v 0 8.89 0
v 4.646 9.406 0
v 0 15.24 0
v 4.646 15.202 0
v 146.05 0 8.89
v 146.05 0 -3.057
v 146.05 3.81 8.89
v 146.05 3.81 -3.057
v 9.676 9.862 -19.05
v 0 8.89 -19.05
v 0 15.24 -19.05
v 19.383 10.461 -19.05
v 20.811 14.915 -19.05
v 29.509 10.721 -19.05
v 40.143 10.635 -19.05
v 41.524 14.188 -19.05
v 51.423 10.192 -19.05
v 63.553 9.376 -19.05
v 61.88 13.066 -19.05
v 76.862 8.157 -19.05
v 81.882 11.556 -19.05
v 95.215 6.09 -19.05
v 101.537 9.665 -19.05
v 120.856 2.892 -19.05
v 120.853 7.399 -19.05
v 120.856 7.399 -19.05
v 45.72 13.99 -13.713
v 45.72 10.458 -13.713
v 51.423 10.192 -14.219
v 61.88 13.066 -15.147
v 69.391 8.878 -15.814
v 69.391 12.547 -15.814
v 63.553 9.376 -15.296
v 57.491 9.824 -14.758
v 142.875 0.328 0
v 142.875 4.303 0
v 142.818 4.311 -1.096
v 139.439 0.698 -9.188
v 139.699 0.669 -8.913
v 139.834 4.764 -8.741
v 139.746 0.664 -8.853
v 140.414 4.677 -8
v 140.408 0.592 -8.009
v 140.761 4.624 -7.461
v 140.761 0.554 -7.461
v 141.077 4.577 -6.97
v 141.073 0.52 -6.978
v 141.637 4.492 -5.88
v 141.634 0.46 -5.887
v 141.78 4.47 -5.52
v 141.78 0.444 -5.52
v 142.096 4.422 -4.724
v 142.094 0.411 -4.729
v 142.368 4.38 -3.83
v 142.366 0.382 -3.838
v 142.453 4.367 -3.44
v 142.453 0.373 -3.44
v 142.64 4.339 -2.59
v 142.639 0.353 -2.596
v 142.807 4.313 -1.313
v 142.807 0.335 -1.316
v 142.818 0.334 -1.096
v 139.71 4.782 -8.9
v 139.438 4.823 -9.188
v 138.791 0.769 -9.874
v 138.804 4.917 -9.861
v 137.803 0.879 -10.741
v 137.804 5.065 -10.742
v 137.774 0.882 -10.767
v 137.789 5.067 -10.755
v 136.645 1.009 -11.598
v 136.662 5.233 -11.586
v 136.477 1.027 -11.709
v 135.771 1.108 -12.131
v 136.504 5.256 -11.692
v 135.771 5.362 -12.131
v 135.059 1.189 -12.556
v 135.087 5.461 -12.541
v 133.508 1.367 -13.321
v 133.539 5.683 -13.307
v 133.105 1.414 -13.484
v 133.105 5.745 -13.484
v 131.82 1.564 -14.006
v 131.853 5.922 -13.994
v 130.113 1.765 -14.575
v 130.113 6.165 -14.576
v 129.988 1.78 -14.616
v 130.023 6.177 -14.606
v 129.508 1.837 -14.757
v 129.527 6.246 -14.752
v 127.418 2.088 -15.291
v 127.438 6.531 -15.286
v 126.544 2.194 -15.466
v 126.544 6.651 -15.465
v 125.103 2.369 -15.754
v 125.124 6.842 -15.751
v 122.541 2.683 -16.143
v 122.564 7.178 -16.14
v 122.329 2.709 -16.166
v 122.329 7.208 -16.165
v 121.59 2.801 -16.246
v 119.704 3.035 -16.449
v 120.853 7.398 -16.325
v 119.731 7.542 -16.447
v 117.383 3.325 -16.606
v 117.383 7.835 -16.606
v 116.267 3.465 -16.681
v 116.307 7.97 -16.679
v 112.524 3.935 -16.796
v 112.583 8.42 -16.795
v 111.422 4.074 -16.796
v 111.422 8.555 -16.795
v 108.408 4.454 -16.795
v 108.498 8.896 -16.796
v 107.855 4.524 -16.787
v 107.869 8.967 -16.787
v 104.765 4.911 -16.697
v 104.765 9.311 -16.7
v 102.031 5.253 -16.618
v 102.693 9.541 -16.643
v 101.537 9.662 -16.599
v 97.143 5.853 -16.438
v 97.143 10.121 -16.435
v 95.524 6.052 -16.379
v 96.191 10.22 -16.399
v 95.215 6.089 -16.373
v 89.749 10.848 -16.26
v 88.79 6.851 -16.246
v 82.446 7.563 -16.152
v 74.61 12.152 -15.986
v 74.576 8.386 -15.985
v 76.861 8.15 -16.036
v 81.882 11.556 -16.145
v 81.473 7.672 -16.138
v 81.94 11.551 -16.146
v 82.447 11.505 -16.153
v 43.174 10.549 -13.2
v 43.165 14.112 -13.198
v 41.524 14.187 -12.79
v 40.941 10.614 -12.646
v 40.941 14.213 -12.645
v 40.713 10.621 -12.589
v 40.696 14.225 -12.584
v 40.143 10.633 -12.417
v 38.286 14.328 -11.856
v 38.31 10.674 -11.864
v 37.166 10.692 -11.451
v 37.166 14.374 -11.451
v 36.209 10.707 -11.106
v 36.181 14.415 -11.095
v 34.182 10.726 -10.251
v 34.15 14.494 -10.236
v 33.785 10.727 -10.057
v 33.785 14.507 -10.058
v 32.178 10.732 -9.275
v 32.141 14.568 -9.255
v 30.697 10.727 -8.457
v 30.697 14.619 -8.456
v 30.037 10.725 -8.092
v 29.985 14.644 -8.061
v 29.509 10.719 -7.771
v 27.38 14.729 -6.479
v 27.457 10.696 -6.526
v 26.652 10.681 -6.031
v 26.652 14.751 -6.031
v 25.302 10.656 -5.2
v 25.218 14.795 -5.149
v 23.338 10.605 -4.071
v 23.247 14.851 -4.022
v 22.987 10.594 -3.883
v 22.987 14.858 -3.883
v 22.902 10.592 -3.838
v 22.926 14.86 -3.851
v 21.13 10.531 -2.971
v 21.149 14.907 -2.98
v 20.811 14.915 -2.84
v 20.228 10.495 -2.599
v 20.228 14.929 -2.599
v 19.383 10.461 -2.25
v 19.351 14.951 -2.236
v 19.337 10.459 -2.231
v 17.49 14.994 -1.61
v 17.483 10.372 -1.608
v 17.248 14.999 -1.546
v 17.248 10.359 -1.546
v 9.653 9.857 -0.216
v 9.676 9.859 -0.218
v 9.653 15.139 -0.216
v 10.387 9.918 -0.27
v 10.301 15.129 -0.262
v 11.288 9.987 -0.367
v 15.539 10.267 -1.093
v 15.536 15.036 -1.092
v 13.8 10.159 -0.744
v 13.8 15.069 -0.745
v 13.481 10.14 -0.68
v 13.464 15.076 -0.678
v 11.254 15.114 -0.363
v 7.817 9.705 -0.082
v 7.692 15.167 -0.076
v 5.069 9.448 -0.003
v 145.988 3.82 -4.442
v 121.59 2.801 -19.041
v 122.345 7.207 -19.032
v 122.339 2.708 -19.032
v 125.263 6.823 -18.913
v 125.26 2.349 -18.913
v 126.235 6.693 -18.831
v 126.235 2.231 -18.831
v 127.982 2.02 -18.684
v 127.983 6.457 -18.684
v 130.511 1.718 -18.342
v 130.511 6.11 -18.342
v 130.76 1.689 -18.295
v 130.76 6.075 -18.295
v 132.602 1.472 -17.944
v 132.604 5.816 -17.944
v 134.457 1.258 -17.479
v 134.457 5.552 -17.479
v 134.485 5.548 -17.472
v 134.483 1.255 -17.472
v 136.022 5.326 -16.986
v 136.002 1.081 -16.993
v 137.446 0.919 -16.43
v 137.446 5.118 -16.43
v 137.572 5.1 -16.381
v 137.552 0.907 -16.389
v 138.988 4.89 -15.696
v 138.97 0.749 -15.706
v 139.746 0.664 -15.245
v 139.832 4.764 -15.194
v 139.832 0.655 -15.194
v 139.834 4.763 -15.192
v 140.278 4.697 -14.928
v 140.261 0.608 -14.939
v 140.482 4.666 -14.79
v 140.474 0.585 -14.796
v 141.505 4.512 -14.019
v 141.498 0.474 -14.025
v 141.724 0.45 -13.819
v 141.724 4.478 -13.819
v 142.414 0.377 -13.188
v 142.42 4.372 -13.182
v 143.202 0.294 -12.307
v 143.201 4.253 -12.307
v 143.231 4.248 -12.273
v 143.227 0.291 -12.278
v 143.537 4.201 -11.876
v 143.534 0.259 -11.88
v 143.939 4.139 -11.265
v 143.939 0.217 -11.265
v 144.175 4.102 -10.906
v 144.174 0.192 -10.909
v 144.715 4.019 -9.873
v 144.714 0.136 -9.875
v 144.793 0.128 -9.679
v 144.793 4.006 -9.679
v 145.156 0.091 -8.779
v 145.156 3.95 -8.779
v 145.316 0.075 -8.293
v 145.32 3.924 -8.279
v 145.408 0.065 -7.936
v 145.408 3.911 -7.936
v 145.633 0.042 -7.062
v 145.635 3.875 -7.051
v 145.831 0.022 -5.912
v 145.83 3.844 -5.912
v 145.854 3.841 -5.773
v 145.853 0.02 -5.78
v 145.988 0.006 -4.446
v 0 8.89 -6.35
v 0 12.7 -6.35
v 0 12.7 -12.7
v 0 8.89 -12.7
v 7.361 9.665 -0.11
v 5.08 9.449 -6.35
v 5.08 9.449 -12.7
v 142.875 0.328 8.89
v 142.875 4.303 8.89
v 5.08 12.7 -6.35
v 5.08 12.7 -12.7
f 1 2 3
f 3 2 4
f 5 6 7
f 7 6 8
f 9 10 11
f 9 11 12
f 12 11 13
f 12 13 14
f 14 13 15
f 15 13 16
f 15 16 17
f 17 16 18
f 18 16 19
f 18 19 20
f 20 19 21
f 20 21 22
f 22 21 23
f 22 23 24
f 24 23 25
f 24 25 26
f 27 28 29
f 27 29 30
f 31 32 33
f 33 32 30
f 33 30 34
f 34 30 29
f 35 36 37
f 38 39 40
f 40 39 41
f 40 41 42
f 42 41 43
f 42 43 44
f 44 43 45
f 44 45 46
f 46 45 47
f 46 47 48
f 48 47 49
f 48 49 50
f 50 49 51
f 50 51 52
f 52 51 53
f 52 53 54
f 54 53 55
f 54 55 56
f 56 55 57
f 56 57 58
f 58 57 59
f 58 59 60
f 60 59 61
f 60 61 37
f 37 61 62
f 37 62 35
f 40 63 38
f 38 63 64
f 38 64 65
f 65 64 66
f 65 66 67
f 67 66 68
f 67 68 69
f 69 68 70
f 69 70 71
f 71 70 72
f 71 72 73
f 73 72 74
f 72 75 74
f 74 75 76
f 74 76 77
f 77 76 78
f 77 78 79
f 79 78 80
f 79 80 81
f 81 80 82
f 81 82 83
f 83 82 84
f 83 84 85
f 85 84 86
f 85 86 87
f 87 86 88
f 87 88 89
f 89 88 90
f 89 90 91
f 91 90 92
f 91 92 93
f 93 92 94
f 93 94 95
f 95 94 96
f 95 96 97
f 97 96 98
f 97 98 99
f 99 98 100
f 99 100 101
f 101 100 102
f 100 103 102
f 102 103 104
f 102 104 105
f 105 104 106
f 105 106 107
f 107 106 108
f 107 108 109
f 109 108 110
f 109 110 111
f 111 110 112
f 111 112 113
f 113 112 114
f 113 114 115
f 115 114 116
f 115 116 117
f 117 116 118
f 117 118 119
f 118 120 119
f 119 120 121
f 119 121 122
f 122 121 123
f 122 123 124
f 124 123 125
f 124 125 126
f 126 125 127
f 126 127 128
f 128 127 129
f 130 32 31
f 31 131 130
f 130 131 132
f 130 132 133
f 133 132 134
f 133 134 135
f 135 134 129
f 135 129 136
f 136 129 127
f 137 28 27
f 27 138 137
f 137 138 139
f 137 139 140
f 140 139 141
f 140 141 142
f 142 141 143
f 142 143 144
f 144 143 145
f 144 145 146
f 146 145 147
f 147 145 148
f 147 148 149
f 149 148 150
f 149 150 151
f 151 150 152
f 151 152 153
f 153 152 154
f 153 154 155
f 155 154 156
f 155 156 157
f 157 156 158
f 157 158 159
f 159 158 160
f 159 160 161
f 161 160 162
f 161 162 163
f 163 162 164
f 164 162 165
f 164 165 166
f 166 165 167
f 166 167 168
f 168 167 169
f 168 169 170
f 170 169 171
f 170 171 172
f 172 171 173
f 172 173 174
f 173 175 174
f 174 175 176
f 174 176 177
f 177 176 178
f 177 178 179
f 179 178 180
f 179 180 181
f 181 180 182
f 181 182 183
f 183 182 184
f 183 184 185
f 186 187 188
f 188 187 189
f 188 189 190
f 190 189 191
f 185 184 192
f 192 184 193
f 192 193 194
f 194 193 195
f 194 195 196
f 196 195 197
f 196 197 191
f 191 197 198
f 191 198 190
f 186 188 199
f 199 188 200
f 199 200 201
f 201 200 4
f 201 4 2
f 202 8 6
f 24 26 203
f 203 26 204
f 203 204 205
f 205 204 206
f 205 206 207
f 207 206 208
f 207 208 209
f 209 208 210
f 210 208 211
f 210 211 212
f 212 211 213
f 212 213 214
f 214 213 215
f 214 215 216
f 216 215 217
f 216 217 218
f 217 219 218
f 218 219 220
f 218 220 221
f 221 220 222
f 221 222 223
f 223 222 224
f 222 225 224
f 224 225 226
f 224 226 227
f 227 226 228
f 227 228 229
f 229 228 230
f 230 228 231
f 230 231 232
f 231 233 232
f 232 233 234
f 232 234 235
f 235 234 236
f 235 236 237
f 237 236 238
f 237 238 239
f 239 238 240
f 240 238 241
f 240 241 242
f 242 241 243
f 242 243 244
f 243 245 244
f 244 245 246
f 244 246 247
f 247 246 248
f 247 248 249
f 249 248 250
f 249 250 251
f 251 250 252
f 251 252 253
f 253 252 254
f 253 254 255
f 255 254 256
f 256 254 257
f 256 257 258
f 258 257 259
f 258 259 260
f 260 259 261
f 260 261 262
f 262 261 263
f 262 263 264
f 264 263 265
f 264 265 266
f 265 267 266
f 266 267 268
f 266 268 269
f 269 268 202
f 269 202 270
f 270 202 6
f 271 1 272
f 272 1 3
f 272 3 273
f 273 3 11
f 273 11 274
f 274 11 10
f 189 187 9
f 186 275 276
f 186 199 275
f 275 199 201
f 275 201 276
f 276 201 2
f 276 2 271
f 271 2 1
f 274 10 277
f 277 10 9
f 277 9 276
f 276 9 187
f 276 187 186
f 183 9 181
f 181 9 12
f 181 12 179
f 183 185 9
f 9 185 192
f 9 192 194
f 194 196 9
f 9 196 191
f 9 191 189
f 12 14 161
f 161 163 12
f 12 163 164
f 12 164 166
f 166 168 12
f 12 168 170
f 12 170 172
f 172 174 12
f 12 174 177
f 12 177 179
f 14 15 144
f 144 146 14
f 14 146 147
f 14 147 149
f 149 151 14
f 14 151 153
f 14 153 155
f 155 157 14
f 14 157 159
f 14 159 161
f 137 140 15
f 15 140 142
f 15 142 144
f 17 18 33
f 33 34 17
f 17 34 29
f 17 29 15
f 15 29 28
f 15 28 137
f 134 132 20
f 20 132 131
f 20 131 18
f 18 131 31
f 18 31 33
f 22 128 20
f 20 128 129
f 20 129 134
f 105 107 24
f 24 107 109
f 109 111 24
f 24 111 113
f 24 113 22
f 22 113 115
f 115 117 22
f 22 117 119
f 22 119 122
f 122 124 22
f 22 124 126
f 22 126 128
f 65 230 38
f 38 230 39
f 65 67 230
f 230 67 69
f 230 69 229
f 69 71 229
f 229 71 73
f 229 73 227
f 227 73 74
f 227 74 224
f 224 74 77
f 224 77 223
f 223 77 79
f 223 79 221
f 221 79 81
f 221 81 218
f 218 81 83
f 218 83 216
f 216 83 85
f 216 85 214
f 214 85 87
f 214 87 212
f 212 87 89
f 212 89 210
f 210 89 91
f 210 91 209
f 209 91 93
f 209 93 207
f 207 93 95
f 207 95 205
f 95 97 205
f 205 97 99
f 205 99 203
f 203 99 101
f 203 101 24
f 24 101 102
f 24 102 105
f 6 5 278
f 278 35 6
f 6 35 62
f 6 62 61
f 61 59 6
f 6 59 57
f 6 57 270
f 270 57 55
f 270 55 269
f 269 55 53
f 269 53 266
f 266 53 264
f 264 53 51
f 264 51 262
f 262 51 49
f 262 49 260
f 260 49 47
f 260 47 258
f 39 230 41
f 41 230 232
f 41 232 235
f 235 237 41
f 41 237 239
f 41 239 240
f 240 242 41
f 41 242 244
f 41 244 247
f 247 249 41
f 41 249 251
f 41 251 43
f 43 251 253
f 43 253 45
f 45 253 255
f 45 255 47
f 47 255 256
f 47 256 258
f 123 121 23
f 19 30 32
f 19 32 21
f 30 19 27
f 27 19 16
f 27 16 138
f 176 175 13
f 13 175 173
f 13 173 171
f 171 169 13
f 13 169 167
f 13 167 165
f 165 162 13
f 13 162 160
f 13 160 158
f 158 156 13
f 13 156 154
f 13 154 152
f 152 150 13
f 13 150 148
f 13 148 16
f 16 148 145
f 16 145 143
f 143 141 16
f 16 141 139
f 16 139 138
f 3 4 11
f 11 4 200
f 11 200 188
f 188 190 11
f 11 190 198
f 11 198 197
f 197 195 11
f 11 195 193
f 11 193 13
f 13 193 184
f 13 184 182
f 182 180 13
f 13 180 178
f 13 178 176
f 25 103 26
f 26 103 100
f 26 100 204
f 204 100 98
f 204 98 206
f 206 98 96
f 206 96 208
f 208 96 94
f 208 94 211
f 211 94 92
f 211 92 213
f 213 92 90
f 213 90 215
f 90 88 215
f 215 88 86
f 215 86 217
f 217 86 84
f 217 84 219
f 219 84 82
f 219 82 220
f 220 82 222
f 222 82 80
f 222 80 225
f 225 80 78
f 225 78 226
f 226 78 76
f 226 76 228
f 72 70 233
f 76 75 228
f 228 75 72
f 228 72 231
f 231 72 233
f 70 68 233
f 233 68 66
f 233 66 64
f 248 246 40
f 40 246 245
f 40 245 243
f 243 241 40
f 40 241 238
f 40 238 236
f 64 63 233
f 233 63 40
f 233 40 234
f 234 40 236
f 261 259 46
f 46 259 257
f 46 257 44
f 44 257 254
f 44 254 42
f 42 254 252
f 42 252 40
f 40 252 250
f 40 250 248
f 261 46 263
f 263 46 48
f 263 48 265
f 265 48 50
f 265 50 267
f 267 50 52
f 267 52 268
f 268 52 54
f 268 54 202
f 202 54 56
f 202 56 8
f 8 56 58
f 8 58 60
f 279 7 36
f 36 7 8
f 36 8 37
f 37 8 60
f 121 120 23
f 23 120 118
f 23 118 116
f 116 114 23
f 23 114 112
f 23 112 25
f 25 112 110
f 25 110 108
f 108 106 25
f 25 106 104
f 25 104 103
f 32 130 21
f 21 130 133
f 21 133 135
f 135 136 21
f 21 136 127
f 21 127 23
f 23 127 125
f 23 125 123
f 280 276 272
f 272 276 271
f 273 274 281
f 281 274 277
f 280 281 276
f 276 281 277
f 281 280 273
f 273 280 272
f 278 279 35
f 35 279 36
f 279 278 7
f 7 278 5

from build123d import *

# Parameters (mm, degrees)
SKETCH1_W           = 146.05
SKETCH1_H           = 19.05
BOSS_EXTRUDE1_DEPTH = 15.24
CUT_EXTRUDE2_DEPTH  = 19.05
CUT_EXTRUDE3_DEPTH  = 149.073504166
SKETCH5_W           = 6.35
SKETCH5_H           = 3.81
CUT_EXTRUDE4_DEPTH  = 5.08
BOSS_EXTRUDE2_DEPTH = 8.89


with BuildPart() as part:
    # Sketch1 → Boss-Extrude1 (new body)
    with BuildSketch(Plane(origin=(0, 0, 0), x_dir=(1, 0, 0), z_dir=(0, 1, 0))):
        with Locations((73.025, 9.525)):
            Rectangle(SKETCH1_W, SKETCH1_H)
    extrude(amount=BOSS_EXTRUDE1_DEPTH)

    # Sketch4 → Cut-Extrude2 (cut)
    with BuildSketch(Plane(origin=(0, 15.24, 0), x_dir=(1, 0, 0), z_dir=(0, 1, 0))):
        with BuildLine():
            add(Edge.make_bspline(
                [(4.646347869, 0), (27.146548215, 0.082392024), (24.692683865, 9.912388059), (45.7201241, 13.713148425)],
                knots=[0, 0, 0, 0, 0.354962546, 0.354962546, 0.354962546, 0.354962546], degree=3))
            Line((4.646347869, 0), (142.875, 0))
            add(Edge.make_bspline(
                [(69.391440705, 15.814171824), (77.407984115, 16.125047145), (89.853629785, 16.2269087), (108.044166199, 16.682225268), (142.597599885, 19.01108954), (142.875, 0)],
                knots=[0.464805359, 0.464805359, 0.464805359, 0.464805359, 0.569522495, 0.63402624, 1, 1, 1, 1], degree=3))
            Line((69.391440705, 15.814171824), (45.7201241, 13.713148425))
        make_face()
        with BuildLine():
            add(Edge.make_bspline(
                [(120.855562162, 19.05), (143.761651025, 18.977988367), (145.894119739, 9.922730541), (146.05, 3.057021482)],
                knots=[0, 0, 0, 0, 0.863105696, 0.863105696, 0.863105696, 0.863105696], degree=3))
            Line((146.05, 3.057021482), (146.05, 19.05))
            Line((146.05, 19.05), (120.855562162, 19.05))
        make_face()
    extrude(amount=-CUT_EXTRUDE2_DEPTH, mode=Mode.SUBTRACT)

    # Sketch3 → Cut-Extrude3 (cut, through all)
    with BuildSketch(Plane(origin=(0, 0, -19.05), x_dir=(-1, 0, 0), z_dir=(0, 0, -1))):
        with BuildLine():
            Line((0, 0), (0, 8.89))
            add(Edge.make_bspline(
                [(0, 8.89), (-49.15708128, 14.835142216), (-97.484997273, 4.911633358), (-146.05, 0)],
                knots=[0, 0, 0, 0, 1, 1, 1, 1], degree=3))
            Line((-146.05, 0), (0, 0))
        make_face()
        with BuildLine():
            add(Edge.make_bspline(
                [(0, 15.24), (-48.867034278, 14.944686699), (-97.766141765, 11.393996233), (-146.05, 3.81)],
                knots=[0, 0, 0, 0, 1, 1, 1, 1], degree=3))
            Line((0, 15.24), (-146.05, 15.24))
            Line((-146.05, 15.24), (-146.05, 3.81))
        make_face()
    extrude(amount=-CUT_EXTRUDE3_DEPTH, mode=Mode.SUBTRACT)

    # Sketch5 → Cut-Extrude4 (cut)
    with BuildSketch(Plane.ZY):
        with Locations((-9.525, 10.795)):
            Rectangle(SKETCH5_W, SKETCH5_H)
    extrude(amount=-CUT_EXTRUDE4_DEPTH, mode=Mode.SUBTRACT)

    # Sketch7 → Boss-Extrude2 (add)
    with BuildSketch(Plane.XY):
        with BuildLine():
            add(Edge.make_bspline(
                [(146.05, 0), (145.256073372, 0.080293963), (144.462266504, 0.161772098), (143.668576555, 0.244379923), (142.875, 0.328063112)],
                knots=[0, 0, 0, 0, 0, 1, 1, 1, 1, 1], degree=4))
            Line((146.05, 0), (146.05, 3.81))
            add(Edge.make_bspline(
                [(146.05, 3.81), (145.256475872, 3.934639667), (144.462799753, 4.058311672), (143.668973763, 4.181017973), (142.875, 4.302760535)],
                knots=[0, 0, 0, 0, 0, 1, 1, 1, 1, 1], degree=4))
            Line((142.875, 4.302760535), (142.875, 0.328063112))
        make_face()
    extrude(amount=BOSS_EXTRUDE2_DEPTH)


solid = part.part
